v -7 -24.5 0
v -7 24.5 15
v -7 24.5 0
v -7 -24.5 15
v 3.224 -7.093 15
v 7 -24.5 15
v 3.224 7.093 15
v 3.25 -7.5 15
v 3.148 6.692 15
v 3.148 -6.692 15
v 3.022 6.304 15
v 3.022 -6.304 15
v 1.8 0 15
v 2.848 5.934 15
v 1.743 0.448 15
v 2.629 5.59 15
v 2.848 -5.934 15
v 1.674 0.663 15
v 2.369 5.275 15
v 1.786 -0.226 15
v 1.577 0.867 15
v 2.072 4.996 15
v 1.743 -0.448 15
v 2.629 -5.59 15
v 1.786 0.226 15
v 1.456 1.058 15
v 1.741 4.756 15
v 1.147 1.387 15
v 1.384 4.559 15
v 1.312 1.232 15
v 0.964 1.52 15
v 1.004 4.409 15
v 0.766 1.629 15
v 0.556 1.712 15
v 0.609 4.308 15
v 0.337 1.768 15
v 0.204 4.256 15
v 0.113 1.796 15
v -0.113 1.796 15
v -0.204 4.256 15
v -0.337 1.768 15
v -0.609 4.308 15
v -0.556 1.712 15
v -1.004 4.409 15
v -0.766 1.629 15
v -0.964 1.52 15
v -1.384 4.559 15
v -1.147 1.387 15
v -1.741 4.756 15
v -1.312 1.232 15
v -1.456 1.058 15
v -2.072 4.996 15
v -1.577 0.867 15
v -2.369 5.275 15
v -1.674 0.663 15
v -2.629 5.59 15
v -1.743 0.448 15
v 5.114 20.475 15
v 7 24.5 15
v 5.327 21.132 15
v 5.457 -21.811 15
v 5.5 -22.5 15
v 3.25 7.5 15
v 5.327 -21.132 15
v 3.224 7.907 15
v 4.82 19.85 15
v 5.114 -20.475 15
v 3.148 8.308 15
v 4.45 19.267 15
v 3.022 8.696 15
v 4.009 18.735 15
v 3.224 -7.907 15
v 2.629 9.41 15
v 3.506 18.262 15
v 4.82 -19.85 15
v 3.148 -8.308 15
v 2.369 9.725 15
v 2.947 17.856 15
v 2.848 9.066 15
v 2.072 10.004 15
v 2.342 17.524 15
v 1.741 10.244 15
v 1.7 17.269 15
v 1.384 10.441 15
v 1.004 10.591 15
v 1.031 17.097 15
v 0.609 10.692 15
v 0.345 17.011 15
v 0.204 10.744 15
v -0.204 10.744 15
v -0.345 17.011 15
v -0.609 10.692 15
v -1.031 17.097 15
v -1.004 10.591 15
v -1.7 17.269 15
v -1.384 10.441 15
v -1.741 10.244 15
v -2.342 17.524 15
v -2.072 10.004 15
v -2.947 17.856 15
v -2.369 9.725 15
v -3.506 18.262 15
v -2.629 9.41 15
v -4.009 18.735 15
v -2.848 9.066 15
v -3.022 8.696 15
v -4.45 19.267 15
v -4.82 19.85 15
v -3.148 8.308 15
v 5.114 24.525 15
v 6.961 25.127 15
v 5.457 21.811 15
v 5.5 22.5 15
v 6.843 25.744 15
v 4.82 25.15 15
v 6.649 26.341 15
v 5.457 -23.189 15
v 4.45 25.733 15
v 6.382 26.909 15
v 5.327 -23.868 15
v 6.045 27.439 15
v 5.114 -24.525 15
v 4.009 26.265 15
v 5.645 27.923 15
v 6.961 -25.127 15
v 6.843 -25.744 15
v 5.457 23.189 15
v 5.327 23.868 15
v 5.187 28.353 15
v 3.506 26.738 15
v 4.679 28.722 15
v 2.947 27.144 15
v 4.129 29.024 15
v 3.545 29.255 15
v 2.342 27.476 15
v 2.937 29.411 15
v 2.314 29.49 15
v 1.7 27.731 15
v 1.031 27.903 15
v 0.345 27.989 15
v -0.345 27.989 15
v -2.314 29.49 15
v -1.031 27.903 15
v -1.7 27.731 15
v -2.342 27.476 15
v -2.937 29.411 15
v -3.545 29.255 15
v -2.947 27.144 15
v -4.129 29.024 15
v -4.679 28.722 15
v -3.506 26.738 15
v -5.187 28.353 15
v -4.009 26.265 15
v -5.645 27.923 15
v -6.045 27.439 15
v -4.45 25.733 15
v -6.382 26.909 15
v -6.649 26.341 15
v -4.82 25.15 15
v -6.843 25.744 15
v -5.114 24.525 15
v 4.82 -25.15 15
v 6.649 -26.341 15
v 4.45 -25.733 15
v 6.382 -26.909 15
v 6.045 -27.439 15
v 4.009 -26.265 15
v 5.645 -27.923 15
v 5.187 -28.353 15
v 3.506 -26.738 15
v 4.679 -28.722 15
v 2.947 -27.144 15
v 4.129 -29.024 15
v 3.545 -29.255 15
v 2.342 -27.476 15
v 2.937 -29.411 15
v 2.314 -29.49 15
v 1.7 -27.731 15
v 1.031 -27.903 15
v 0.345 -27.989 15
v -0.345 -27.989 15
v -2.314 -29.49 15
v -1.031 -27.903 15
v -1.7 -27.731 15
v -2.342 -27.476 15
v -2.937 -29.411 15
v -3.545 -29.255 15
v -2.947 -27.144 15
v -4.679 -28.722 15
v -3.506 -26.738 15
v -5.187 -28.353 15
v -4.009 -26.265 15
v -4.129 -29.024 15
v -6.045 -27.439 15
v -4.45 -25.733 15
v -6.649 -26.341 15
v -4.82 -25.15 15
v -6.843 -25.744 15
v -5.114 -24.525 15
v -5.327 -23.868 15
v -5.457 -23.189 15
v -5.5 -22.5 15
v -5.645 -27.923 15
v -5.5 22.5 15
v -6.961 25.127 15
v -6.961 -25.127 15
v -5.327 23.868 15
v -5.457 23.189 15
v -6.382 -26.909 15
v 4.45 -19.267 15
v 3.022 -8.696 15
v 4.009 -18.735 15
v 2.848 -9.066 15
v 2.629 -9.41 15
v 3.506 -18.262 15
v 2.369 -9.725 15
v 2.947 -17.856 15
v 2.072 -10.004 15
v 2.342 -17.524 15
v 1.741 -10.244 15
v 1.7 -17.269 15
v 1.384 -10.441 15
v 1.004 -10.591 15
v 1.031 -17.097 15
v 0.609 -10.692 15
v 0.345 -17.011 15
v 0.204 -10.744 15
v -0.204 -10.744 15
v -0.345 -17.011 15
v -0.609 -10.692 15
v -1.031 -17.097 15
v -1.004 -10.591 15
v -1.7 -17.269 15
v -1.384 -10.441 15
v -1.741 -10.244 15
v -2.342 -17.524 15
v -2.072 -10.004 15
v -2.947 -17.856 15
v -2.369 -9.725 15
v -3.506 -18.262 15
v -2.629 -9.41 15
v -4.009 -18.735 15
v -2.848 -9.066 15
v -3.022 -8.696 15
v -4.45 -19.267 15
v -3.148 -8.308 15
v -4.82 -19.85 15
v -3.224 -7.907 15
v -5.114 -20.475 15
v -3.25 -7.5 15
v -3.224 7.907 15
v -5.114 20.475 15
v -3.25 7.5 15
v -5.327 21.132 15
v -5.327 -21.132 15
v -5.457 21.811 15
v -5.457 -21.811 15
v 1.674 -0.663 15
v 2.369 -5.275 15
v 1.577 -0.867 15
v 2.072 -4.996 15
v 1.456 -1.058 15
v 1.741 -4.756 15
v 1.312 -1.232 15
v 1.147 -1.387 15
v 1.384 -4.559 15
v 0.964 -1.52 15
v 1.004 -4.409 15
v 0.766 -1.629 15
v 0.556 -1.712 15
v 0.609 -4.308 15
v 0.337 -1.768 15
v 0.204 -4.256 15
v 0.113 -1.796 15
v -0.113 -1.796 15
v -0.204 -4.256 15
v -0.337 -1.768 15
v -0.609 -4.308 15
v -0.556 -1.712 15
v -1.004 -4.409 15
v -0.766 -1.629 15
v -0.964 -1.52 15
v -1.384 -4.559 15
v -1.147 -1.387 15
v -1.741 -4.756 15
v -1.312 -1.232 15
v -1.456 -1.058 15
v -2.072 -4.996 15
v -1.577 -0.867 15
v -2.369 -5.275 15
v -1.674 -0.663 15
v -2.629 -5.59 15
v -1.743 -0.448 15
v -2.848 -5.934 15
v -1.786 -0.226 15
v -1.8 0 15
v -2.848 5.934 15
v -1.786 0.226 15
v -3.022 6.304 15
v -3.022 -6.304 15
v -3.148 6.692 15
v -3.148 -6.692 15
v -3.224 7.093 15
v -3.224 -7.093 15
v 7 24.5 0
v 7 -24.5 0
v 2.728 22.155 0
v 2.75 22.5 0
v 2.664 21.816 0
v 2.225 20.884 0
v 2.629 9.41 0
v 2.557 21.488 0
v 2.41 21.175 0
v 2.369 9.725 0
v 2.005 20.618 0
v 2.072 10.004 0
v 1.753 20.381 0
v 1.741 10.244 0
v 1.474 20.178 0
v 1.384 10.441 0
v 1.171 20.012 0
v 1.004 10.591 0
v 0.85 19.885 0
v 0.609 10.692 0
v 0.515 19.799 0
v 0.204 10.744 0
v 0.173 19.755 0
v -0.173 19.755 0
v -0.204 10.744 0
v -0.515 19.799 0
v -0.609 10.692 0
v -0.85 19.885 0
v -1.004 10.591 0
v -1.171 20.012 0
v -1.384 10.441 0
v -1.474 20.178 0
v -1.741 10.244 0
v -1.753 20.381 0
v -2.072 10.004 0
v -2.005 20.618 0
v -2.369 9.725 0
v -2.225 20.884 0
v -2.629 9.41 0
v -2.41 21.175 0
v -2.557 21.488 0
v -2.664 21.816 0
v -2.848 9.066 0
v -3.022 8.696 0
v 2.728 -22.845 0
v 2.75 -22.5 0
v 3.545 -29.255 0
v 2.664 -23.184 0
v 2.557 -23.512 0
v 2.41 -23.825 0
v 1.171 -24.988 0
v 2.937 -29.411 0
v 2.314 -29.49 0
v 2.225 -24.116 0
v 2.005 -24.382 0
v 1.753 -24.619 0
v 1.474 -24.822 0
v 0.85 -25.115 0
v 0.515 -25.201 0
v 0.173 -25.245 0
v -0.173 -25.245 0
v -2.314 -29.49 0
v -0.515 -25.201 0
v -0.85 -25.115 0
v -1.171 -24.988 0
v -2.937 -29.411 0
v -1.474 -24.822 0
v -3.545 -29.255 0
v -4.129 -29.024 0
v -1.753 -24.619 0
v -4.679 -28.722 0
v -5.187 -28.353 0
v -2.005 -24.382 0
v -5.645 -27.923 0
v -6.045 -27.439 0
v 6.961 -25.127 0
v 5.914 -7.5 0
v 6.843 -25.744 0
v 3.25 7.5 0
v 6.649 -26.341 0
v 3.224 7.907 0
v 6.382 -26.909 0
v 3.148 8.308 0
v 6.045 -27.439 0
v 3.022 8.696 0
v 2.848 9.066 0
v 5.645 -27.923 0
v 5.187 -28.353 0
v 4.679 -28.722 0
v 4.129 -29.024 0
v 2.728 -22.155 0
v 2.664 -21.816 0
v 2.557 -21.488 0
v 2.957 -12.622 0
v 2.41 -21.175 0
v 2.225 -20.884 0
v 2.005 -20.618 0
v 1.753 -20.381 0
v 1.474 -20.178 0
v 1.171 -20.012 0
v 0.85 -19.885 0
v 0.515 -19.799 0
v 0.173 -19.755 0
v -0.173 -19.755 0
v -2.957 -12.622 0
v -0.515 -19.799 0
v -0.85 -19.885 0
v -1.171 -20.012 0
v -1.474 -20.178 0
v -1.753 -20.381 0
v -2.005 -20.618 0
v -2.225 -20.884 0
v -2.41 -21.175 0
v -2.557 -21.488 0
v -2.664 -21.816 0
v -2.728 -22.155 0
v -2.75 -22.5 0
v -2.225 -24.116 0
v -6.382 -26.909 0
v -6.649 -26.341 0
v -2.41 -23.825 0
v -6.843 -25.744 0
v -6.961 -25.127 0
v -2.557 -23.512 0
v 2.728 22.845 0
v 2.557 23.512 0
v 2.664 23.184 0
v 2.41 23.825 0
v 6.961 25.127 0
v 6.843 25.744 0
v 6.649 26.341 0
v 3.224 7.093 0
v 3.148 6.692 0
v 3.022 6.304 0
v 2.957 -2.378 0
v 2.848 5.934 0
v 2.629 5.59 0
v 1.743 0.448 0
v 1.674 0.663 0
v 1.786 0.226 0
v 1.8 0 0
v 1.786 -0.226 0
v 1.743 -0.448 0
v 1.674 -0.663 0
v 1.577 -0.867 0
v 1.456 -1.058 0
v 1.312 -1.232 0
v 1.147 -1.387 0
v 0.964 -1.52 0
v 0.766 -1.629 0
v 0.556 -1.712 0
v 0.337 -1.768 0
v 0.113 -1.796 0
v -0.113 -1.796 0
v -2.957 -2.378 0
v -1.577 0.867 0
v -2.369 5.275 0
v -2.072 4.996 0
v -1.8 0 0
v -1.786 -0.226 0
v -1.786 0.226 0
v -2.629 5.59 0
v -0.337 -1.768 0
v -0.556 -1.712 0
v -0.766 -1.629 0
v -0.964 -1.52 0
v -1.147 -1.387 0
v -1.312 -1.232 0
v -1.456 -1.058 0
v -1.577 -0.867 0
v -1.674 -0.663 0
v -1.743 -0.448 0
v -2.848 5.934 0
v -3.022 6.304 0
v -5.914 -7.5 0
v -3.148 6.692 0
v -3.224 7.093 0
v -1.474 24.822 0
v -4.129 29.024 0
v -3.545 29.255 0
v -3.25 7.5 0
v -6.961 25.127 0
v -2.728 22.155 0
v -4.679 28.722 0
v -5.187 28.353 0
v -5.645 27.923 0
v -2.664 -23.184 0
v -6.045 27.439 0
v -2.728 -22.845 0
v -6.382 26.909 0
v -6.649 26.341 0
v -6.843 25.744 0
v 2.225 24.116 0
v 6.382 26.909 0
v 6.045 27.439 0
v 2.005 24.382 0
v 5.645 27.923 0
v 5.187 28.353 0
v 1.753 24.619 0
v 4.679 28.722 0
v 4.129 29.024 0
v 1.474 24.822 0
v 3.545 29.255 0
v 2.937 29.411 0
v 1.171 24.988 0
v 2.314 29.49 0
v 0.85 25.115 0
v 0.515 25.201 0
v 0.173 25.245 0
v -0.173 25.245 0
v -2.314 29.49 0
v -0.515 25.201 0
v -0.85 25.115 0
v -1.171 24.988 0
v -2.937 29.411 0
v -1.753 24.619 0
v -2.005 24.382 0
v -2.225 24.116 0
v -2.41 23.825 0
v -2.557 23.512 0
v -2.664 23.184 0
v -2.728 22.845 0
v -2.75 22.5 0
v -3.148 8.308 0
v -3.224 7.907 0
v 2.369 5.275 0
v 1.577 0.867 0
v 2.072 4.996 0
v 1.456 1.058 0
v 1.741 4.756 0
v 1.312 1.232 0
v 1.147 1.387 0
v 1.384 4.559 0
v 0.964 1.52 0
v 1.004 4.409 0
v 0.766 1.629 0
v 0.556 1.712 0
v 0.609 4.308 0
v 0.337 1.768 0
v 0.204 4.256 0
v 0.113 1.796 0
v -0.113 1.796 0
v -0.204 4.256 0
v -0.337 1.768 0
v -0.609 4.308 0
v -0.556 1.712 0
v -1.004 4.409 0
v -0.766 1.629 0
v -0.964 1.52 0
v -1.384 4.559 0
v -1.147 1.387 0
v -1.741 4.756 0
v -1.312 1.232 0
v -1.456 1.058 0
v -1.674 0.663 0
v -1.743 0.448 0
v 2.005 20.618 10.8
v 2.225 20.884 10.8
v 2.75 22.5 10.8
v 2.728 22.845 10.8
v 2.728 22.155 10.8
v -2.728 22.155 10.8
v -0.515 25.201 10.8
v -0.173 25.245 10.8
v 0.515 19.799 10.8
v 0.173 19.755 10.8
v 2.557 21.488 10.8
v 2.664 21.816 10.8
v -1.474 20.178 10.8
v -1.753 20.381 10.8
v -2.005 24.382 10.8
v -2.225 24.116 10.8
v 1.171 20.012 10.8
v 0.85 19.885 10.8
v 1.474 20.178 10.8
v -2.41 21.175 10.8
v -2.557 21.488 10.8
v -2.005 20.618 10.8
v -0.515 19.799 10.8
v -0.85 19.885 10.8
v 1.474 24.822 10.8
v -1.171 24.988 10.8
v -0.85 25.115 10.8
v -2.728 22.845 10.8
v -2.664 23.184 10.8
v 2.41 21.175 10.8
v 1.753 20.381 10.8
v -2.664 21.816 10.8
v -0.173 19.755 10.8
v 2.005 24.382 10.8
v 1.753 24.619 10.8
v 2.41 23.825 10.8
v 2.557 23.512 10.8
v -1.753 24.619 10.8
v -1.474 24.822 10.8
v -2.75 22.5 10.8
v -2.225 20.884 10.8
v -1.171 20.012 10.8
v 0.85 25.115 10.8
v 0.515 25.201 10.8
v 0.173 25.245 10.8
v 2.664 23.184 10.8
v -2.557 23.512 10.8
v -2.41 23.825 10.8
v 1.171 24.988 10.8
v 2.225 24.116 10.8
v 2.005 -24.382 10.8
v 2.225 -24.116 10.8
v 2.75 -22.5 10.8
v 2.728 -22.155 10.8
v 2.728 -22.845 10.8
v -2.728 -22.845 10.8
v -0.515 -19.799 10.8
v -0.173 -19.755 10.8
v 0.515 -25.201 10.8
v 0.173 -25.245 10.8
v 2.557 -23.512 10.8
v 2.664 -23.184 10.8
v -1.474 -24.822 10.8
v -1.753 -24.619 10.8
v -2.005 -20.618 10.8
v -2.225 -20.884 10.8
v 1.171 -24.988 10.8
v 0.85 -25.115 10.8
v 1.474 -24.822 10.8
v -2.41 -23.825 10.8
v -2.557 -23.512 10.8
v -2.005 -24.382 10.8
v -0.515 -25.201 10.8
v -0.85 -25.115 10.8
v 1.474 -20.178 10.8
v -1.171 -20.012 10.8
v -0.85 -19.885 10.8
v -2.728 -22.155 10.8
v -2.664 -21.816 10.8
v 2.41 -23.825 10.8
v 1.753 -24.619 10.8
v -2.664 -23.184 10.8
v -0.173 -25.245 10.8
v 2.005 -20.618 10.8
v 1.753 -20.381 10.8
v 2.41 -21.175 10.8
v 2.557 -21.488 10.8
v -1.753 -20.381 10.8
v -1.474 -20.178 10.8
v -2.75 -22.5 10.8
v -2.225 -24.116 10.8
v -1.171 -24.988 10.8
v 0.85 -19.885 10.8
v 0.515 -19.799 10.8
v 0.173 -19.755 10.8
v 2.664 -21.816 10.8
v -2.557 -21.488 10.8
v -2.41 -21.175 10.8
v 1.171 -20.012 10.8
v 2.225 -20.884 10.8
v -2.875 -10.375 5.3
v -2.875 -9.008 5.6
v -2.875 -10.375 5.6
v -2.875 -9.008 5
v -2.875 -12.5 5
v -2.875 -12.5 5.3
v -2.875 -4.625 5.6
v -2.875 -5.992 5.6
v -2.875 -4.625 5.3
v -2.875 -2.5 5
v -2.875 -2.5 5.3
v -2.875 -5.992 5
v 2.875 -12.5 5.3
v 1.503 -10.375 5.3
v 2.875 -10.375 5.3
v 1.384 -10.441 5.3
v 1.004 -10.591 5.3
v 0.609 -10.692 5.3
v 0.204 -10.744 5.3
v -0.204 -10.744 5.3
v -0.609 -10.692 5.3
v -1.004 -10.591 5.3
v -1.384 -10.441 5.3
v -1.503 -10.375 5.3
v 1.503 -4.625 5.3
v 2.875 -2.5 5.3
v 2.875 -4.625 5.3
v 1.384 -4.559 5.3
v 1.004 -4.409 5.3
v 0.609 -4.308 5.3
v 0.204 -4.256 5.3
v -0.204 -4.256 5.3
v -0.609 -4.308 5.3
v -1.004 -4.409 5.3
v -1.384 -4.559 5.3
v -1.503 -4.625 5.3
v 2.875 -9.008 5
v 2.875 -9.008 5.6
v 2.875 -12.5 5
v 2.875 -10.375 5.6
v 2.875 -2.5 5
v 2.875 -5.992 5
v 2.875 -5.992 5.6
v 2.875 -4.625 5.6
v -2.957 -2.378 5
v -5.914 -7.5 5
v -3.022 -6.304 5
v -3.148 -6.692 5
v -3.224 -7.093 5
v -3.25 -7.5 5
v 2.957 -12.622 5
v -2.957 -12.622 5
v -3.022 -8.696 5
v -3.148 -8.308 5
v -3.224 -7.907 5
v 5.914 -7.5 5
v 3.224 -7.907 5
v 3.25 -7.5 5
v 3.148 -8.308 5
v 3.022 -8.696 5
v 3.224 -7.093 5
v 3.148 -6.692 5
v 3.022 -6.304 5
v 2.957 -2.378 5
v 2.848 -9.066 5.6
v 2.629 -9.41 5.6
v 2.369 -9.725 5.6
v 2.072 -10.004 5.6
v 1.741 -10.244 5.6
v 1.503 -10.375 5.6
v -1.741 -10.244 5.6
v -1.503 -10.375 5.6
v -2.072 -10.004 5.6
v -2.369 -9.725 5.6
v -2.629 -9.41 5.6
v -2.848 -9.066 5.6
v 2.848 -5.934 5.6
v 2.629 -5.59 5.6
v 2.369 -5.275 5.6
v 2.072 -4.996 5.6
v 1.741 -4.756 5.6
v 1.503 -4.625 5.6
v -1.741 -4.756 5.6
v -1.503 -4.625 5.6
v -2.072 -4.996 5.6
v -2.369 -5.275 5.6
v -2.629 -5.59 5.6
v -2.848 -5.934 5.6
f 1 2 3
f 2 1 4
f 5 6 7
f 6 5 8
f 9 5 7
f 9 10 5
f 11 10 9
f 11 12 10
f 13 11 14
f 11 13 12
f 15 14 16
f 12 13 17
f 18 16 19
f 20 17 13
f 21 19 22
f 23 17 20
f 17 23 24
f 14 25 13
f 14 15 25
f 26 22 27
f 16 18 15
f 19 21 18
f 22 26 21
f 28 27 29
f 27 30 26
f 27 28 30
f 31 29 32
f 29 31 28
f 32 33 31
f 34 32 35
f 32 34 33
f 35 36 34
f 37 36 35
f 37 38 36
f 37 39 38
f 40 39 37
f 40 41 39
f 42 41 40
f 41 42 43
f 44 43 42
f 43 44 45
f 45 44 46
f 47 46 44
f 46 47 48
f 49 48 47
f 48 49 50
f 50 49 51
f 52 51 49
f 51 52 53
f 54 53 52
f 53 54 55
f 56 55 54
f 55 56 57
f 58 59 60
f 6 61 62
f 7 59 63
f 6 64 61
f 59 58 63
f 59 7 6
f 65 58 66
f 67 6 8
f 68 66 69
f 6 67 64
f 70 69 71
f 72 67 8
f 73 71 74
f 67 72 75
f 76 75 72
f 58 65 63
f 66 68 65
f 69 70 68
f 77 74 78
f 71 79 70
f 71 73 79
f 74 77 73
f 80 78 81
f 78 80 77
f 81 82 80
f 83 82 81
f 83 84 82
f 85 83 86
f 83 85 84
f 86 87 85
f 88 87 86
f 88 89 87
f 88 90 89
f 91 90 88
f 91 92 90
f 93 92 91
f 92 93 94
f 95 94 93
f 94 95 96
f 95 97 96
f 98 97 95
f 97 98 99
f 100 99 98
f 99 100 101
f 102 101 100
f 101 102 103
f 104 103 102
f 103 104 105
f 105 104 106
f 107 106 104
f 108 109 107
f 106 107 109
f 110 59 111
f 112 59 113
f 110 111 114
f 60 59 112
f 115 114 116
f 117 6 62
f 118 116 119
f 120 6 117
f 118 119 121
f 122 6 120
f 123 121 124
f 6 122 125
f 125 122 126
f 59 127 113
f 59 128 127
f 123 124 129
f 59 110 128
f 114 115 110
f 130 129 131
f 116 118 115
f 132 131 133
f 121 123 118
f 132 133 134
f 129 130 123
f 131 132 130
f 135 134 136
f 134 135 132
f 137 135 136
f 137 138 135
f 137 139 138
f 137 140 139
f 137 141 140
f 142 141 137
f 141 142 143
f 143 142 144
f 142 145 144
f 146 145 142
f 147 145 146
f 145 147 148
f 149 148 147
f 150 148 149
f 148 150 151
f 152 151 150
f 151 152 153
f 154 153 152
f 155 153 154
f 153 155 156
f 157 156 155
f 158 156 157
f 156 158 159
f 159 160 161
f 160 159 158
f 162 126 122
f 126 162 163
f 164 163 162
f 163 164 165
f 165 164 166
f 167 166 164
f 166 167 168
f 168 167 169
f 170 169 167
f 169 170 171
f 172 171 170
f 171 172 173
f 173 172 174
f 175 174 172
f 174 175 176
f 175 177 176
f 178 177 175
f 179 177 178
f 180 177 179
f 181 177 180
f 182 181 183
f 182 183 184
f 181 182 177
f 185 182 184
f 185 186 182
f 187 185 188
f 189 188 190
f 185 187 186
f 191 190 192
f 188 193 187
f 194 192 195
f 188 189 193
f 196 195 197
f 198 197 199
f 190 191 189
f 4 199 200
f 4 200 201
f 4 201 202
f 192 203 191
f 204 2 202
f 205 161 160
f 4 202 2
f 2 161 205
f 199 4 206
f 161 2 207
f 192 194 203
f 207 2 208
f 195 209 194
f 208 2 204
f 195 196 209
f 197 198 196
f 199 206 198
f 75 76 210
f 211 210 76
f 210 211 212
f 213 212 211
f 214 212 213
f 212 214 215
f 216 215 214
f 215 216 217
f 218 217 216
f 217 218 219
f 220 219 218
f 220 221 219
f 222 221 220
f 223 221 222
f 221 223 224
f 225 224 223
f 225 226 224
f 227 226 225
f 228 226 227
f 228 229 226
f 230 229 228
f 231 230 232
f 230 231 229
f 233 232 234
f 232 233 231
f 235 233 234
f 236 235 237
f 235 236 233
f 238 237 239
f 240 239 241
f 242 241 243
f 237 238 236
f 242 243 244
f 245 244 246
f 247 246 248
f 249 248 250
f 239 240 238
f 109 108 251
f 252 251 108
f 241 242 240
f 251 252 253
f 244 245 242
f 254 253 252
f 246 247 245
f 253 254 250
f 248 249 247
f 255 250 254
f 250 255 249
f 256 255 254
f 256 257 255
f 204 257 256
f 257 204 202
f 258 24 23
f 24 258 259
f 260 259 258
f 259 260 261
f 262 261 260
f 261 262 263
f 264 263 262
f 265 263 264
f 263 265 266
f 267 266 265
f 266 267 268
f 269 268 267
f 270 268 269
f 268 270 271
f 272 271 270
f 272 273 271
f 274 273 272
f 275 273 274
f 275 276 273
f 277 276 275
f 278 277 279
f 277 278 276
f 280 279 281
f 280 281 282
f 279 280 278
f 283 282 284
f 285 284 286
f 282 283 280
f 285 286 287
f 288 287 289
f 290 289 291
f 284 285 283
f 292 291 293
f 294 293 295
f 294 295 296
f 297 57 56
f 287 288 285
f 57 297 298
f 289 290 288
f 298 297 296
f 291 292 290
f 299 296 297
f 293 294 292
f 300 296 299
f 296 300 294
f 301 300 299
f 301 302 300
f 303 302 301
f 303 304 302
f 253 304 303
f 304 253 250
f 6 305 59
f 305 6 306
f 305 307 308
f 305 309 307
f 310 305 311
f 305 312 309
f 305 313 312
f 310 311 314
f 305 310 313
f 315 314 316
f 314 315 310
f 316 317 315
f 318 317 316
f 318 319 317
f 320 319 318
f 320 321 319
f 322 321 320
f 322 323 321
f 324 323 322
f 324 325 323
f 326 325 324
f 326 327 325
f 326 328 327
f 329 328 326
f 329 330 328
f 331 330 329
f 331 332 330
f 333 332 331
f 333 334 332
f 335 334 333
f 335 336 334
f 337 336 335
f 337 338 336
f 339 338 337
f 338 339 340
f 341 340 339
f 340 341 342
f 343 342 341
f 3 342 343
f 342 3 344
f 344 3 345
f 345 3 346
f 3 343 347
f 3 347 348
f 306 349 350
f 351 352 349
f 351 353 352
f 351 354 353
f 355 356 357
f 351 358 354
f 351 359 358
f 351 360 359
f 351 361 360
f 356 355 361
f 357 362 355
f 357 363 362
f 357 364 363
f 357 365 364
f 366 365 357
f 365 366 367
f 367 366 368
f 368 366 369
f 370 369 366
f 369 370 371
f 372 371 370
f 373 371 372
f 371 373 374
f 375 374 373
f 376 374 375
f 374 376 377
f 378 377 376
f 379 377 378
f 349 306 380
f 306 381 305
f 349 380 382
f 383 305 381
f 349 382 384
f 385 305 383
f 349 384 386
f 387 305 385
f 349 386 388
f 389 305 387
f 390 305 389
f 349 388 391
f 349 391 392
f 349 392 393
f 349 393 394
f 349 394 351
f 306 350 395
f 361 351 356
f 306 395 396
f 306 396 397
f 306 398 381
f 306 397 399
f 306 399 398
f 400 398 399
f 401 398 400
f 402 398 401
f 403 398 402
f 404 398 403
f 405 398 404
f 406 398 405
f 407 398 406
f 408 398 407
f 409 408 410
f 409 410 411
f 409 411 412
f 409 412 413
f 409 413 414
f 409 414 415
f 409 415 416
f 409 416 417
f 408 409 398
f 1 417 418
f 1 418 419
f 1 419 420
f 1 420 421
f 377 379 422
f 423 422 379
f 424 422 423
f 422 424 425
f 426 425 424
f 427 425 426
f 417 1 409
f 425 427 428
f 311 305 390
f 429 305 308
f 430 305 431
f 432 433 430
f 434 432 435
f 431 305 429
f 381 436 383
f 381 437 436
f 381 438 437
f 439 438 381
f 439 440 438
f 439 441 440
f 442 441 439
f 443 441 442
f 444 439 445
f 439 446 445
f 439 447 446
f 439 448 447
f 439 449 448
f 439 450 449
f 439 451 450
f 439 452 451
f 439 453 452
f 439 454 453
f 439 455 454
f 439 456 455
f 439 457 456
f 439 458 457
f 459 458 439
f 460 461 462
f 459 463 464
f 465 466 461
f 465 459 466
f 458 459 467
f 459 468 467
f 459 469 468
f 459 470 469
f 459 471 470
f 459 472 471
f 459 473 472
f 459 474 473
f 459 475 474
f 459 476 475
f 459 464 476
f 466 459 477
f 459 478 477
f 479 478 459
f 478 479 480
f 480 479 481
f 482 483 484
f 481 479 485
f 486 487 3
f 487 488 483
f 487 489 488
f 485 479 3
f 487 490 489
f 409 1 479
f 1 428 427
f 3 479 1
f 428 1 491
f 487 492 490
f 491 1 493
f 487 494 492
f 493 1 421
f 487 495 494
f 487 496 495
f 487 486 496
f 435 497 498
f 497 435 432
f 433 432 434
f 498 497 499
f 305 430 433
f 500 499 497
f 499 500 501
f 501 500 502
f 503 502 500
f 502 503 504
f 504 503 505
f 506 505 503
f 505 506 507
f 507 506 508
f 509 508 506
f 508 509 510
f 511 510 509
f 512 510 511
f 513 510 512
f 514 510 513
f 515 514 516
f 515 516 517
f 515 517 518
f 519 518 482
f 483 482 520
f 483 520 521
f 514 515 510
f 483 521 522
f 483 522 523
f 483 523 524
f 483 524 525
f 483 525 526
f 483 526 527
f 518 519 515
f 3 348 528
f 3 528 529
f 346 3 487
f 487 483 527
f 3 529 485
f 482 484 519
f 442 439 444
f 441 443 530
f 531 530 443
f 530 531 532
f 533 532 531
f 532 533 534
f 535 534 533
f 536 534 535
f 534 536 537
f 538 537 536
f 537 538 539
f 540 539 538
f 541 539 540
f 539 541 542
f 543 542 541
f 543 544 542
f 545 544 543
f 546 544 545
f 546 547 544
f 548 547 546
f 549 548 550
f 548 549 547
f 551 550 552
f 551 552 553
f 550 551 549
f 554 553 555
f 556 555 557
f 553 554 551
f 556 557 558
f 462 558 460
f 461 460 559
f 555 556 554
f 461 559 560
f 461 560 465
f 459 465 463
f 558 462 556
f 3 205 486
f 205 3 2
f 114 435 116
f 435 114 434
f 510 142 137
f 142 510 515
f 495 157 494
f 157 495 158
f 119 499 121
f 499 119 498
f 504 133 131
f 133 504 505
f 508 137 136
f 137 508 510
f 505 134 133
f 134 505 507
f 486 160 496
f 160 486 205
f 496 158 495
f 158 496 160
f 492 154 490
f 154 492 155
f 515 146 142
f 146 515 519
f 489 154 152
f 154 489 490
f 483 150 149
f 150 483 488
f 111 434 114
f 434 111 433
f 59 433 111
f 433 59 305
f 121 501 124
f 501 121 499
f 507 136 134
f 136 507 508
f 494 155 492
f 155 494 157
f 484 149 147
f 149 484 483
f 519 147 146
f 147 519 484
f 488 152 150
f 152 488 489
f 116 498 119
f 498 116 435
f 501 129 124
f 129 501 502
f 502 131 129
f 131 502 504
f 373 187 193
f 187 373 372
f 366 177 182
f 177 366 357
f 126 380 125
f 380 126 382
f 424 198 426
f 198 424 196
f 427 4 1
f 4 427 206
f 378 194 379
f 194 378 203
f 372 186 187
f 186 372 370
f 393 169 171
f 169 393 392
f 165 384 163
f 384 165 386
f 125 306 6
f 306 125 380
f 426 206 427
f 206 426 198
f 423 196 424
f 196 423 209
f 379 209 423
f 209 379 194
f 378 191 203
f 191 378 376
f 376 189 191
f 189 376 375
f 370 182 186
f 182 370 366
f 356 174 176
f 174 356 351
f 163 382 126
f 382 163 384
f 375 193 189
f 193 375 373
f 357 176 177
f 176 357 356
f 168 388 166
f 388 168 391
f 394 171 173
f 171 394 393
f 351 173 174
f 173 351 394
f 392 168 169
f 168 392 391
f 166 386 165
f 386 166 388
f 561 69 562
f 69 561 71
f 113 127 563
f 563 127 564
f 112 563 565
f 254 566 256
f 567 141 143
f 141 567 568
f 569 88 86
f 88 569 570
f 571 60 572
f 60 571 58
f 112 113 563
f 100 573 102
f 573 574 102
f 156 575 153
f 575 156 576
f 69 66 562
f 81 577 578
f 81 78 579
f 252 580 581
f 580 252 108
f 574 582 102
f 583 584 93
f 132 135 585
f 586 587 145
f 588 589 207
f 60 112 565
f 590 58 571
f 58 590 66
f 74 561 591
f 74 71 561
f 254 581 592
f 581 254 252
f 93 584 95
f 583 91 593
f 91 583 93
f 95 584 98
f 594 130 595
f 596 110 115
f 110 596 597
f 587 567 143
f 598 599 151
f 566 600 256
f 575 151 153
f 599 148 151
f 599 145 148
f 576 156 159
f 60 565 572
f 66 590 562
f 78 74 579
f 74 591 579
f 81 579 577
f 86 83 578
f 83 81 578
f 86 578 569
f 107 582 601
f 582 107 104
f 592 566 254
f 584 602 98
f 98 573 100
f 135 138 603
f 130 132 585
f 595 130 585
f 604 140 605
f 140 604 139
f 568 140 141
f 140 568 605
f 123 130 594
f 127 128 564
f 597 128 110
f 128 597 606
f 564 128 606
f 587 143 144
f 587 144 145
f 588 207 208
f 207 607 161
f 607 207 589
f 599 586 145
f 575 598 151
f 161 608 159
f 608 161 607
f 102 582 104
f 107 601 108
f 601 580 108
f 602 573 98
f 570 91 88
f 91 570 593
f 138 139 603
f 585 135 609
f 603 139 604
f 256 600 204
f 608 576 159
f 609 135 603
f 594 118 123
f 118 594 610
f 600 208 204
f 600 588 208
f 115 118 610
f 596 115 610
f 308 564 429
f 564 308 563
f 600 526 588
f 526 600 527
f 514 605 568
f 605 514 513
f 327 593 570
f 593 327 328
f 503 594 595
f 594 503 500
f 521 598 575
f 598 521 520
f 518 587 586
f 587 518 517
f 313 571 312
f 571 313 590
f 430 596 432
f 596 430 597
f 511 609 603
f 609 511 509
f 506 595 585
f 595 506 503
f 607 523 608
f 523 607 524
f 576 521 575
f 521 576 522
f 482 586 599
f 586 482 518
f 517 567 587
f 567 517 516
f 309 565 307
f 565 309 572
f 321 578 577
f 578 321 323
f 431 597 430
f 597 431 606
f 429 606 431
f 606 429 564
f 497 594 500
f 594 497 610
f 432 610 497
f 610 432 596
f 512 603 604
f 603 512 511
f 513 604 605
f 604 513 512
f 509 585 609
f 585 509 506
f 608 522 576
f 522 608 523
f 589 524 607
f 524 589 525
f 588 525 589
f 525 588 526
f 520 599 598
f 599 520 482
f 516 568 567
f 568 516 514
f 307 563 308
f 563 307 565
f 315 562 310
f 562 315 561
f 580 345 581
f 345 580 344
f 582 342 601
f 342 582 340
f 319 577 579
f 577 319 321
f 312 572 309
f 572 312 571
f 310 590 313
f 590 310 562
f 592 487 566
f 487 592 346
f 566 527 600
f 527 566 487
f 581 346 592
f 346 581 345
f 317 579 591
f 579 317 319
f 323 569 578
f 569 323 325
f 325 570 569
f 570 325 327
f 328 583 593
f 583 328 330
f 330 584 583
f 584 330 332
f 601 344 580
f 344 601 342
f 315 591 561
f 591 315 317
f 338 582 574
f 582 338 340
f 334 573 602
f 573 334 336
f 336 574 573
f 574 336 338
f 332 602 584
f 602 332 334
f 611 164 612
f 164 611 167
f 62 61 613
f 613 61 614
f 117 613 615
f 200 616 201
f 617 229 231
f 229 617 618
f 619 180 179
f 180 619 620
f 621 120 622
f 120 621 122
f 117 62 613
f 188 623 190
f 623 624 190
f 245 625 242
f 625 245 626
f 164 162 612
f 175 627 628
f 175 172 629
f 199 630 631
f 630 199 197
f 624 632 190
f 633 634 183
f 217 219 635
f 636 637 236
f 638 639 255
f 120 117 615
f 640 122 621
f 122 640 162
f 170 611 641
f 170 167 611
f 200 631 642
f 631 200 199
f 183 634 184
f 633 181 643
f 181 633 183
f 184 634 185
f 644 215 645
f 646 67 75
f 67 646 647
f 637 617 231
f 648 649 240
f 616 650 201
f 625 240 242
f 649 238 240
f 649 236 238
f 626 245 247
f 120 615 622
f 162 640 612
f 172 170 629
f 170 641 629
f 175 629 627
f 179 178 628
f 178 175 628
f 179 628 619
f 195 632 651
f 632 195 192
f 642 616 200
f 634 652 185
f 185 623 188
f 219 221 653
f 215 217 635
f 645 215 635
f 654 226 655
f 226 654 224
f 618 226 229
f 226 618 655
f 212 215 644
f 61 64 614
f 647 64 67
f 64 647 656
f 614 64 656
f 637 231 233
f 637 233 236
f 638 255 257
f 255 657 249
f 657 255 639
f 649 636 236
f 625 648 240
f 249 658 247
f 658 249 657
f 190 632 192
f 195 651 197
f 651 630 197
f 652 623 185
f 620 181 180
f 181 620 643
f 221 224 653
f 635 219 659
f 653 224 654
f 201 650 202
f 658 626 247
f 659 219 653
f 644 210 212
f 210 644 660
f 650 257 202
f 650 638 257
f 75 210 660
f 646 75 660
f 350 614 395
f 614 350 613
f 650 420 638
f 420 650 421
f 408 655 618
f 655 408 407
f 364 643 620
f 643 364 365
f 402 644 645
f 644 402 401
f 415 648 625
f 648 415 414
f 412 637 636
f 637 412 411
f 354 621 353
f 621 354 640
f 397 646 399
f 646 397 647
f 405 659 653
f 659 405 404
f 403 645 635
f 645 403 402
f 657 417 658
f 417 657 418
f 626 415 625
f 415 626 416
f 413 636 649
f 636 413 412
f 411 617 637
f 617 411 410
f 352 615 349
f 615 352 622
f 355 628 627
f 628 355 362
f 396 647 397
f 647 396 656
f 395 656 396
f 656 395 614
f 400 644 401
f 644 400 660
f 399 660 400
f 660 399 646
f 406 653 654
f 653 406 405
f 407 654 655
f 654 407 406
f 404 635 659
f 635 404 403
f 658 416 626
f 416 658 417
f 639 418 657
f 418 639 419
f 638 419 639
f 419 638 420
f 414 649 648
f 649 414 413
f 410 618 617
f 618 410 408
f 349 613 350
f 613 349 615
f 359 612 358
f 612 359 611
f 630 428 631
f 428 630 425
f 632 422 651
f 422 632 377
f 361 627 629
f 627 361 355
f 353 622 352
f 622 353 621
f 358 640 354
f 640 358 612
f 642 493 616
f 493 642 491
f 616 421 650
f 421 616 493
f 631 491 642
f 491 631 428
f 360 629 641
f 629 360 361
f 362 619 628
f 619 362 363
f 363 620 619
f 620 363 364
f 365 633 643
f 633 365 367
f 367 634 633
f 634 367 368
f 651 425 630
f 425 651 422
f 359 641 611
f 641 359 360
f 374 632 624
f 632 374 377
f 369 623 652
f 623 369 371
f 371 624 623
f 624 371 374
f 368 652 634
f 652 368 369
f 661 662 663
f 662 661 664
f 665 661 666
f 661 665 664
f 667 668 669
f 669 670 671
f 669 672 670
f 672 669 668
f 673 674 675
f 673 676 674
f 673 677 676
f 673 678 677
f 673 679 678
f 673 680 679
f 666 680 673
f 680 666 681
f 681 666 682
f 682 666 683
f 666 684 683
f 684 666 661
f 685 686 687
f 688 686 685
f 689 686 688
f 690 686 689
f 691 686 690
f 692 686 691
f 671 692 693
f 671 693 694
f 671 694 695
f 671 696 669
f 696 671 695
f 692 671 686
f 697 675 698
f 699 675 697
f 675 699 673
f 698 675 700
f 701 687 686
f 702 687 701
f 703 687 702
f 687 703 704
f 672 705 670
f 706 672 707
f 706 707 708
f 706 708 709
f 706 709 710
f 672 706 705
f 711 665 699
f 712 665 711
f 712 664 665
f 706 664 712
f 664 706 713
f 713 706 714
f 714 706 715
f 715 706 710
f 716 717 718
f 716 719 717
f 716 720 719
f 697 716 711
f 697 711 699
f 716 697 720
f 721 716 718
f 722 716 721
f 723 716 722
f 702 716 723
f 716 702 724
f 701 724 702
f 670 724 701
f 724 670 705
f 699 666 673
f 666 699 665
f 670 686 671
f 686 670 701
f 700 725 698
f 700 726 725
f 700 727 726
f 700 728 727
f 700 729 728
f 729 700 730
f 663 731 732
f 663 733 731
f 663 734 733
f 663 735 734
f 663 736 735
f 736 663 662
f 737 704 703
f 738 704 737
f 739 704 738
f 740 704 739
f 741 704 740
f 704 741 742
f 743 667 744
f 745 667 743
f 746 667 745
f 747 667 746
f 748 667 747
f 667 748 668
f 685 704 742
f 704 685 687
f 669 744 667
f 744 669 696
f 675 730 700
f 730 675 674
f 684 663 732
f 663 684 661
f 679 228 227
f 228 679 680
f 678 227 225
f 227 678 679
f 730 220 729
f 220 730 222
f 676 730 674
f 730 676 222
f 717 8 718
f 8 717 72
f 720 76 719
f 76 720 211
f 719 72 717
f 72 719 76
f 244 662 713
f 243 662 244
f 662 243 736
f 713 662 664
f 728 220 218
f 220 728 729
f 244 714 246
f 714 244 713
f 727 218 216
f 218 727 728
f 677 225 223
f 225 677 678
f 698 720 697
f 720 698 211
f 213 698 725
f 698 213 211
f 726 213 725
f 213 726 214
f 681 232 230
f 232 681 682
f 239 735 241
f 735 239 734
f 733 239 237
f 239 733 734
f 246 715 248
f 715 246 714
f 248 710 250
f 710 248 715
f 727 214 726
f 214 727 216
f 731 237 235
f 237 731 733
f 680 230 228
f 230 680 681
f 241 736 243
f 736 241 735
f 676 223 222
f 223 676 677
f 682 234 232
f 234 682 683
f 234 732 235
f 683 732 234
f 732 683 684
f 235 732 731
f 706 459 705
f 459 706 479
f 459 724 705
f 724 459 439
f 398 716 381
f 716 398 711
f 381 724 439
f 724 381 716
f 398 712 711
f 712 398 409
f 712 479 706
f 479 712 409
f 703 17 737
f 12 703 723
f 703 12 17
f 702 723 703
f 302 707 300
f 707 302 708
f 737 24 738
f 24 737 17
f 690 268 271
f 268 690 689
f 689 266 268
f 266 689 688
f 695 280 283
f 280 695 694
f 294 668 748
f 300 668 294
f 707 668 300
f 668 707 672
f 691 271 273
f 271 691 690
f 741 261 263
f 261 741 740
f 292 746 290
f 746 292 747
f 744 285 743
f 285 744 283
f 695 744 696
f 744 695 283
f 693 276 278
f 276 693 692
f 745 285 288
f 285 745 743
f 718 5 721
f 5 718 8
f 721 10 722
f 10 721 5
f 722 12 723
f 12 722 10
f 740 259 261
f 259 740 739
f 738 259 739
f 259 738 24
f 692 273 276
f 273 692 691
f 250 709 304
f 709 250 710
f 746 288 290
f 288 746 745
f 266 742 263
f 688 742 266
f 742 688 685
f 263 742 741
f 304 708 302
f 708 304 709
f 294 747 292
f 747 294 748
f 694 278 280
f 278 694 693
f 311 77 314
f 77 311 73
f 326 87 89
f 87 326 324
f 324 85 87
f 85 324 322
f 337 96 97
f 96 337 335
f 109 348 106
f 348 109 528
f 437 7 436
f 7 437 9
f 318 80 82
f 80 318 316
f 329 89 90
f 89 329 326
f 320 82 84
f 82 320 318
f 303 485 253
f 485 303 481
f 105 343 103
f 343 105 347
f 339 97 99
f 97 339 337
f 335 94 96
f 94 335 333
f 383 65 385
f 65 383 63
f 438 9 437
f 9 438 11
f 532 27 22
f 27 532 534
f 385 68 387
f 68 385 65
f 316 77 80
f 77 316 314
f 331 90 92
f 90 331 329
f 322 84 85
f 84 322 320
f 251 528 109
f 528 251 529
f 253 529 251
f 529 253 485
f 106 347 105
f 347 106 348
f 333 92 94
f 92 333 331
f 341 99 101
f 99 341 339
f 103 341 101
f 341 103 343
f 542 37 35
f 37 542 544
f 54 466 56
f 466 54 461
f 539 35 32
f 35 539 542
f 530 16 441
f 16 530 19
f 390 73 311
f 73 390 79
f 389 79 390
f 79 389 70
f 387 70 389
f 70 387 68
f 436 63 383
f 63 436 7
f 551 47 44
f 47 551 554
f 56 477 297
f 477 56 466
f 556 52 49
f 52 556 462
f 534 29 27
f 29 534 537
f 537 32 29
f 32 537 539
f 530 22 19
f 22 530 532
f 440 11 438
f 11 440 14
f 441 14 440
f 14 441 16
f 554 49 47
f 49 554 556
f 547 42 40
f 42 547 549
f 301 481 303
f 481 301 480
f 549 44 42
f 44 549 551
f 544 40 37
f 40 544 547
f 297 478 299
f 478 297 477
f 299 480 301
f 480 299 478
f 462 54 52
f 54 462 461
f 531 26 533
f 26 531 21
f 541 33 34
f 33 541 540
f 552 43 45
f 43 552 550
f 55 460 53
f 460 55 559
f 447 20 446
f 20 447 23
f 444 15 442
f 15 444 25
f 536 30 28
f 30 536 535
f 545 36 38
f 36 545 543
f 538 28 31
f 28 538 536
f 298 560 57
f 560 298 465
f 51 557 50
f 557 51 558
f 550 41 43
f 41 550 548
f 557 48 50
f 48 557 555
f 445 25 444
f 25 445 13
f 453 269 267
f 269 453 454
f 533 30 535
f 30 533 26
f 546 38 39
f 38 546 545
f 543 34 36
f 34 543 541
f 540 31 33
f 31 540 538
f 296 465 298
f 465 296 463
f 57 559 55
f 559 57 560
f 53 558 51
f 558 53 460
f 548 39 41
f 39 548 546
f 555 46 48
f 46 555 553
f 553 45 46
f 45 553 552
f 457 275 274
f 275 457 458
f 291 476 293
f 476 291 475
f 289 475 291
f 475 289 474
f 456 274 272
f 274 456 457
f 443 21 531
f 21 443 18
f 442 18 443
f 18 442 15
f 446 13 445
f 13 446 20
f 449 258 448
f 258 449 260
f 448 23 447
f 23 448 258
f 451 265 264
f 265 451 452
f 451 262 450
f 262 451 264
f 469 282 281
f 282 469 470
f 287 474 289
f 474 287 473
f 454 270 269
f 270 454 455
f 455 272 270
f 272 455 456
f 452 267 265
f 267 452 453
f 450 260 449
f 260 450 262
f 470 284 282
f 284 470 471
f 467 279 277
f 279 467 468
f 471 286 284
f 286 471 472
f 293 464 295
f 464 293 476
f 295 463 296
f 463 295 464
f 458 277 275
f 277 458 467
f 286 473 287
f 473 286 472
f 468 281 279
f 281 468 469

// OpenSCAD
$fn = 50;


difference() {
	union() {
		hull() {
			translate(v = [-2.0000000000, 9.5000000000, 0]) {
				cylinder(h = 15, r = 5);
			}
			translate(v = [2.0000000000, 9.5000000000, 0]) {
				cylinder(h = 15, r = 5);
			}
			translate(v = [-2.0000000000, -9.5000000000, 0]) {
				cylinder(h = 15, r = 5);
			}
			translate(v = [2.0000000000, -9.5000000000, 0]) {
				cylinder(h = 15, r = 5);
			}
		}
		translate(v = [0.0000000000, 15.0000000000, 0]) {
			hull() {
				translate(v = [-2.0000000000, 9.5000000000, 0]) {
					cylinder(h = 15, r = 5);
				}
				translate(v = [2.0000000000, 9.5000000000, 0]) {
					cylinder(h = 15, r = 5);
				}
				translate(v = [-2.0000000000, -9.5000000000, 0]) {
					cylinder(h = 15, r = 5);
				}
				translate(v = [2.0000000000, -9.5000000000, 0]) {
					cylinder(h = 15, r = 5);
				}
			}
		}
		translate(v = [0.0000000000, 15.0000000000, 0]) {
			hull() {
				translate(v = [-2.0000000000, 9.5000000000, 0]) {
					cylinder(h = 15, r = 5);
				}
				translate(v = [2.0000000000, 9.5000000000, 0]) {
					cylinder(h = 15, r = 5);
				}
				translate(v = [-2.0000000000, -9.5000000000, 0]) {
					cylinder(h = 15, r = 5);
				}
				translate(v = [2.0000000000, -9.5000000000, 0]) {
					cylinder(h = 15, r = 5);
				}
			}
		}
		translate(v = [0.0000000000, -15.0000000000, 0]) {
			hull() {
				translate(v = [-2.0000000000, 9.5000000000, 0]) {
					cylinder(h = 15, r = 5);
				}
				translate(v = [2.0000000000, 9.5000000000, 0]) {
					cylinder(h = 15, r = 5);
				}
				translate(v = [-2.0000000000, -9.5000000000, 0]) {
					cylinder(h = 15, r = 5);
				}
				translate(v = [2.0000000000, -9.5000000000, 0]) {
					cylinder(h = 15, r = 5);
				}
			}
		}
		translate(v = [0.0000000000, -15.0000000000, 0]) {
			hull() {
				translate(v = [-2.0000000000, 9.5000000000, 0]) {
					cylinder(h = 15, r = 5);
				}
				translate(v = [2.0000000000, 9.5000000000, 0]) {
					cylinder(h = 15, r = 5);
				}
				translate(v = [-2.0000000000, -9.5000000000, 0]) {
					cylinder(h = 15, r = 5);
				}
				translate(v = [2.0000000000, -9.5000000000, 0]) {
					cylinder(h = 15, r = 5);
				}
			}
		}
	}
	union() {
		translate(v = [0.0000000000, 22.5000000000, 15]) {
			rotate(a = [0, 0, 0]) {
				difference() {
					union() {
						#translate(v = [0, 0, -15.0000000000]) {
							cylinder(h = 15, r = 2.2500000000);
						}
						#translate(v = [0, 0, -4.2000000000]) {
							cylinder(h = 4.2000000000, r1 = 2.7500000000, r2 = 5.5000000000);
						}
						#translate(v = [0, 0, -15.0000000000]) {
							cylinder(h = 15, r = 2.7500000000);
						}
						#translate(v = [0, 0, -15.0000000000]) {
							cylinder(h = 15, r = 2.2500000000);
						}
					}
					union();
				}
			}
		}
		translate(v = [0.0000000000, 22.5000000000, 15]) {
			rotate(a = [0, 0, 0]) {
				difference() {
					union() {
						#translate(v = [0, 0, -15.0000000000]) {
							cylinder(h = 15, r = 2.2500000000);
						}
						#translate(v = [0, 0, -4.2000000000]) {
							cylinder(h = 4.2000000000, r1 = 2.7500000000, r2 = 5.5000000000);
						}
						#translate(v = [0, 0, -15.0000000000]) {
							cylinder(h = 15, r = 2.7500000000);
						}
						#translate(v = [0, 0, -15.0000000000]) {
							cylinder(h = 15, r = 2.2500000000);
						}
					}
					union();
				}
			}
		}
		translate(v = [0.0000000000, -22.5000000000, 15]) {
			rotate(a = [0, 0, 0]) {
				difference() {
					union() {
						#translate(v = [0, 0, -15.0000000000]) {
							cylinder(h = 15, r = 2.2500000000);
						}
						#translate(v = [0, 0, -4.2000000000]) {
							cylinder(h = 4.2000000000, r1 = 2.7500000000, r2 = 5.5000000000);
						}
						#translate(v = [0, 0, -15.0000000000]) {
							cylinder(h = 15, r = 2.7500000000);
						}
						#translate(v = [0, 0, -15.0000000000]) {
							cylinder(h = 15, r = 2.2500000000);
						}
					}
					union();
				}
			}
		}
		translate(v = [0.0000000000, -22.5000000000, 15]) {
			rotate(a = [0, 0, 0]) {
				difference() {
					union() {
						#translate(v = [0, 0, -15.0000000000]) {
							cylinder(h = 15, r = 2.2500000000);
						}
						#translate(v = [0, 0, -4.2000000000]) {
							cylinder(h = 4.2000000000, r1 = 2.7500000000, r2 = 5.5000000000);
						}
						#translate(v = [0, 0, -15.0000000000]) {
							cylinder(h = 15, r = 2.7500000000);
						}
						#translate(v = [0, 0, -15.0000000000]) {
							cylinder(h = 15, r = 2.2500000000);
						}
					}
					union();
				}
			}
		}
		translate(v = [0.0000000000, -7.5000000000, 0]) {
			rotate(a = [0, 0, 0]) {
				difference() {
					union() {
						#translate(v = [-2.8750000000, -5.0000000000, -0.3000000000]) {
							cube(size = [5.7500000000, 10, 0.3000000000]);
						}
						#translate(v = [-2.8750000000, -2.8750000000, -0.6000000000]) {
							cube(size = [5.7500000000, 5.7500000000, 0.3000000000]);
						}
						#translate(v = [-2.8750000000, -5.0000000000, 5]) {
							cube(size = [5.7500000000, 10, 0.3000000000]);
						}
						#translate(v = [-2.8750000000, -2.8750000000, 5.3000000000]) {
							cube(size = [5.7500000000, 5.7500000000, 0.3000000000]);
						}
						#translate(v = [0, 0, -100.0000000000]) {
							cylinder(h = 200, r = 3.2500000000);
						}
						#linear_extrude(height = 5) {
							polygon(points = [[5.9142500000, 0.0000000000], [2.9571250000, 5.1218907443], [-2.9571250000, 5.1218907443], [-5.9142500000, 0.0000000000], [-2.9571250000, -5.1218907443], [2.9571250000, -5.1218907443]]);
						}
						#translate(v = [-2.8750000000, -5.0000000000, -0.3000000000]) {
							cube(size = [5.7500000000, 10, 0.3000000000]);
						}
						#translate(v = [-2.8750000000, -2.8750000000, -0.6000000000]) {
							cube(size = [5.7500000000, 5.7500000000, 0.3000000000]);
						}
						#translate(v = [-2.8750000000, -5.0000000000, 5]) {
							cube(size = [5.7500000000, 10, 0.3000000000]);
						}
						#translate(v = [-2.8750000000, -2.8750000000, 5.3000000000]) {
							cube(size = [5.7500000000, 5.7500000000, 0.3000000000]);
						}
						#translate(v = [0, 0, -100.0000000000]) {
							cylinder(h = 200, r = 3.2500000000);
						}
						#translate(v = [-2.8750000000, -5.0000000000, -0.3000000000]) {
							cube(size = [5.7500000000, 10, 0.3000000000]);
						}
						#translate(v = [-2.8750000000, -2.8750000000, -0.6000000000]) {
							cube(size = [5.7500000000, 5.7500000000, 0.3000000000]);
						}
						#translate(v = [-2.8750000000, -5.0000000000, 5]) {
							cube(size = [5.7500000000, 10, 0.3000000000]);
						}
						#translate(v = [-2.8750000000, -2.8750000000, 5.3000000000]) {
							cube(size = [5.7500000000, 5.7500000000, 0.3000000000]);
						}
						#translate(v = [0, 0, -100.0000000000]) {
							cylinder(h = 200, r = 3.2500000000);
						}
					}
					union();
				}
			}
		}
		translate(v = [0.0000000000, -7.5000000000, 0]) {
			translate(v = [0, 0, -100]) {
				cylinder(h = 200, r = 3.2500000000);
			}
		}
		translate(v = [0.0000000000, 7.5000000000, 0]) {
			translate(v = [0, 0, -100]) {
				cylinder(h = 200, r = 3.2500000000);
			}
		}
		translate(v = [0.0000000000, -7.5000000000, 0]) {
			translate(v = [0, 0, -100]) {
				cylinder(h = 200, r = 1.8000000000);
			}
		}
		translate(v = [0, 0, -100]) {
			cylinder(h = 200, r = 1.8000000000);
		}
		translate(v = [0.0000000000, 7.5000000000, 0]) {
			translate(v = [0, 0, -100]) {
				cylinder(h = 200, r = 1.8000000000);
			}
		}
	}
}
